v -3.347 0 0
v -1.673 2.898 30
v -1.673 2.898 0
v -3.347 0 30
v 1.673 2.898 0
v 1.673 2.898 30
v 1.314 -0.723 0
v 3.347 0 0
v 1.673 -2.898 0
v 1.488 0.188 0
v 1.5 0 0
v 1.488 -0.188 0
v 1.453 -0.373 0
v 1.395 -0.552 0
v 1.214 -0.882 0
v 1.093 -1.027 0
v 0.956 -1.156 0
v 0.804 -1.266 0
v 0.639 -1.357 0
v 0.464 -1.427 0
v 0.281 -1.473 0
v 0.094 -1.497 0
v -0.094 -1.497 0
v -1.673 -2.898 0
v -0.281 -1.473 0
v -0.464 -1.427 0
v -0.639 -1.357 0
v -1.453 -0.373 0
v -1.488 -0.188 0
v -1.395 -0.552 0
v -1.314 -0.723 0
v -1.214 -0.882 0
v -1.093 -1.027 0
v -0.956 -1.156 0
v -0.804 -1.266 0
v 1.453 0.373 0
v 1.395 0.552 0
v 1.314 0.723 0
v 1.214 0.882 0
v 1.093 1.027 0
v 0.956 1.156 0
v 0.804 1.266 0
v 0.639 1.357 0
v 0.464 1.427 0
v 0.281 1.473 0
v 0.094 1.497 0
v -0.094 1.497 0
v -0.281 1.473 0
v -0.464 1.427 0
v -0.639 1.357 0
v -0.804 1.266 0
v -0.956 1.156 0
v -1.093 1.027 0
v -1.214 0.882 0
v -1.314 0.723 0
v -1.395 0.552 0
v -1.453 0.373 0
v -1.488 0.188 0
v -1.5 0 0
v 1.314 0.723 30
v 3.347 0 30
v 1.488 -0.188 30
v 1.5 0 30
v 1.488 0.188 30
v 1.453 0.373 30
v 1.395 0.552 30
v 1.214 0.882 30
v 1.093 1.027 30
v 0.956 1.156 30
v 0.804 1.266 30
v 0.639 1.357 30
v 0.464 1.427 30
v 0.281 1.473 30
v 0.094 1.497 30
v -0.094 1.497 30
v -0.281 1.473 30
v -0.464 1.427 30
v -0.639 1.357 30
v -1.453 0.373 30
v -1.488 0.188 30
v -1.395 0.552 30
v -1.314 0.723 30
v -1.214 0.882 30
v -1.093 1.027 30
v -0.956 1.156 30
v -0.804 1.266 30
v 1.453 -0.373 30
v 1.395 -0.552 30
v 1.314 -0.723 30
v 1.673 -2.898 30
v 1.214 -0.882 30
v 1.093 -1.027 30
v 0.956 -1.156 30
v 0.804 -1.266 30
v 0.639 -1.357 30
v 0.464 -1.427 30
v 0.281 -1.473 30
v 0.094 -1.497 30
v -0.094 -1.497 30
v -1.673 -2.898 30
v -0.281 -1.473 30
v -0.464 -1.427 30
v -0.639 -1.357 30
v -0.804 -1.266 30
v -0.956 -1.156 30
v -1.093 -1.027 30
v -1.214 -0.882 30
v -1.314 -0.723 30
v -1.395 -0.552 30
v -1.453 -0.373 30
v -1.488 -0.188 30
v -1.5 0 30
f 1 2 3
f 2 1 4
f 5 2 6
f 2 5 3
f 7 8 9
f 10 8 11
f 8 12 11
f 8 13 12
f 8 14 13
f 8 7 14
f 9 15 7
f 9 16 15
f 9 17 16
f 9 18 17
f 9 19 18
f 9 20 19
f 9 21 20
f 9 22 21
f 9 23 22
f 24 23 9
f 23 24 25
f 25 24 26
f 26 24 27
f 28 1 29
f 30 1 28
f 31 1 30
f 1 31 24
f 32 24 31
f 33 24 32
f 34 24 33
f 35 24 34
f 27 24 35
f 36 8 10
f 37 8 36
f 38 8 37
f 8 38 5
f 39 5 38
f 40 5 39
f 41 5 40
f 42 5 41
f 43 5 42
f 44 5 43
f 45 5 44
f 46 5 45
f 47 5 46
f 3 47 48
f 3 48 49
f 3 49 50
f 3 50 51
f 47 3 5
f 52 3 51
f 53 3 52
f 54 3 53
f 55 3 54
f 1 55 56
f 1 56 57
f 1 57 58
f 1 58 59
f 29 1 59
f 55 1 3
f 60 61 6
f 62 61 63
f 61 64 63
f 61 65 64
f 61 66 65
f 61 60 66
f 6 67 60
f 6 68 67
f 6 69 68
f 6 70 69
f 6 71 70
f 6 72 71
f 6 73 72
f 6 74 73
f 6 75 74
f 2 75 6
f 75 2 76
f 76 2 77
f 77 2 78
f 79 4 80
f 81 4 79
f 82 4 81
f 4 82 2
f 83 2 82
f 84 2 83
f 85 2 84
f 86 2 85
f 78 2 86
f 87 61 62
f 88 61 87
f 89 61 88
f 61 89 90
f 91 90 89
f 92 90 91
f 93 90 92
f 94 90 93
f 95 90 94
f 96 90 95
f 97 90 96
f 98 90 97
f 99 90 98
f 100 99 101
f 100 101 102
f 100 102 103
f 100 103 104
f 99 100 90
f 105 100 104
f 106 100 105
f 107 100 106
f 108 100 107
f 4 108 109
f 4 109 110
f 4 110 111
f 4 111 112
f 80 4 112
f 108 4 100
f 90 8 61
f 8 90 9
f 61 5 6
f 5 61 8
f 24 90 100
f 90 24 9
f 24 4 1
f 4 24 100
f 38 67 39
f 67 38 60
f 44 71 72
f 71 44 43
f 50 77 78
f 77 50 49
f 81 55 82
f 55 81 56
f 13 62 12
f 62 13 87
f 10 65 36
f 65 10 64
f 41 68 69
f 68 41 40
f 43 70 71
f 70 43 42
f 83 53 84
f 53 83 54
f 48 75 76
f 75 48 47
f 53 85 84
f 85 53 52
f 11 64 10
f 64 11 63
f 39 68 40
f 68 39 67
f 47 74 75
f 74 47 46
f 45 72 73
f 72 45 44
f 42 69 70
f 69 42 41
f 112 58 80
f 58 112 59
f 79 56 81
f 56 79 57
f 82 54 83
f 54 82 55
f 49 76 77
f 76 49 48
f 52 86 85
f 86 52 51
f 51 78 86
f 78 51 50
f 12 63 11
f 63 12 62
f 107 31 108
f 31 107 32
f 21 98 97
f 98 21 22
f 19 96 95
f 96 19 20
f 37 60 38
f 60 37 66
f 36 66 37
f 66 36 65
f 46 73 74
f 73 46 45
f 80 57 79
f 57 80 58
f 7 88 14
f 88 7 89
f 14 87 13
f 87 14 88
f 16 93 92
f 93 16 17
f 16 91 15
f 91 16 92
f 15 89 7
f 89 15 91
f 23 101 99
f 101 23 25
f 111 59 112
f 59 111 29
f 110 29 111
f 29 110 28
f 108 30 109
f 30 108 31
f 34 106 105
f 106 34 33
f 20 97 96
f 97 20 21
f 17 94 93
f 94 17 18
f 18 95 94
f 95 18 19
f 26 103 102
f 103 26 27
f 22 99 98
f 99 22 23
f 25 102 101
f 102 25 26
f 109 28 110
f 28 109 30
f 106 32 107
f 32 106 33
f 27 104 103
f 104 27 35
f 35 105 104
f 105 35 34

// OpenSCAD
$fn = 50;


difference() {
	union() {
		linear_extrude(height = 30) {
			polygon(points = [[3.3466000000, 0.0000000000], [1.6733000000, 2.8982406163], [-1.6733000000, 2.8982406163], [-3.3466000000, 0.0000000000], [-1.6733000000, -2.8982406163], [1.6733000000, -2.8982406163]]);
		}
	}
	union() {
		cylinder(h = 30, r = 1.5000000000);
	}
}
